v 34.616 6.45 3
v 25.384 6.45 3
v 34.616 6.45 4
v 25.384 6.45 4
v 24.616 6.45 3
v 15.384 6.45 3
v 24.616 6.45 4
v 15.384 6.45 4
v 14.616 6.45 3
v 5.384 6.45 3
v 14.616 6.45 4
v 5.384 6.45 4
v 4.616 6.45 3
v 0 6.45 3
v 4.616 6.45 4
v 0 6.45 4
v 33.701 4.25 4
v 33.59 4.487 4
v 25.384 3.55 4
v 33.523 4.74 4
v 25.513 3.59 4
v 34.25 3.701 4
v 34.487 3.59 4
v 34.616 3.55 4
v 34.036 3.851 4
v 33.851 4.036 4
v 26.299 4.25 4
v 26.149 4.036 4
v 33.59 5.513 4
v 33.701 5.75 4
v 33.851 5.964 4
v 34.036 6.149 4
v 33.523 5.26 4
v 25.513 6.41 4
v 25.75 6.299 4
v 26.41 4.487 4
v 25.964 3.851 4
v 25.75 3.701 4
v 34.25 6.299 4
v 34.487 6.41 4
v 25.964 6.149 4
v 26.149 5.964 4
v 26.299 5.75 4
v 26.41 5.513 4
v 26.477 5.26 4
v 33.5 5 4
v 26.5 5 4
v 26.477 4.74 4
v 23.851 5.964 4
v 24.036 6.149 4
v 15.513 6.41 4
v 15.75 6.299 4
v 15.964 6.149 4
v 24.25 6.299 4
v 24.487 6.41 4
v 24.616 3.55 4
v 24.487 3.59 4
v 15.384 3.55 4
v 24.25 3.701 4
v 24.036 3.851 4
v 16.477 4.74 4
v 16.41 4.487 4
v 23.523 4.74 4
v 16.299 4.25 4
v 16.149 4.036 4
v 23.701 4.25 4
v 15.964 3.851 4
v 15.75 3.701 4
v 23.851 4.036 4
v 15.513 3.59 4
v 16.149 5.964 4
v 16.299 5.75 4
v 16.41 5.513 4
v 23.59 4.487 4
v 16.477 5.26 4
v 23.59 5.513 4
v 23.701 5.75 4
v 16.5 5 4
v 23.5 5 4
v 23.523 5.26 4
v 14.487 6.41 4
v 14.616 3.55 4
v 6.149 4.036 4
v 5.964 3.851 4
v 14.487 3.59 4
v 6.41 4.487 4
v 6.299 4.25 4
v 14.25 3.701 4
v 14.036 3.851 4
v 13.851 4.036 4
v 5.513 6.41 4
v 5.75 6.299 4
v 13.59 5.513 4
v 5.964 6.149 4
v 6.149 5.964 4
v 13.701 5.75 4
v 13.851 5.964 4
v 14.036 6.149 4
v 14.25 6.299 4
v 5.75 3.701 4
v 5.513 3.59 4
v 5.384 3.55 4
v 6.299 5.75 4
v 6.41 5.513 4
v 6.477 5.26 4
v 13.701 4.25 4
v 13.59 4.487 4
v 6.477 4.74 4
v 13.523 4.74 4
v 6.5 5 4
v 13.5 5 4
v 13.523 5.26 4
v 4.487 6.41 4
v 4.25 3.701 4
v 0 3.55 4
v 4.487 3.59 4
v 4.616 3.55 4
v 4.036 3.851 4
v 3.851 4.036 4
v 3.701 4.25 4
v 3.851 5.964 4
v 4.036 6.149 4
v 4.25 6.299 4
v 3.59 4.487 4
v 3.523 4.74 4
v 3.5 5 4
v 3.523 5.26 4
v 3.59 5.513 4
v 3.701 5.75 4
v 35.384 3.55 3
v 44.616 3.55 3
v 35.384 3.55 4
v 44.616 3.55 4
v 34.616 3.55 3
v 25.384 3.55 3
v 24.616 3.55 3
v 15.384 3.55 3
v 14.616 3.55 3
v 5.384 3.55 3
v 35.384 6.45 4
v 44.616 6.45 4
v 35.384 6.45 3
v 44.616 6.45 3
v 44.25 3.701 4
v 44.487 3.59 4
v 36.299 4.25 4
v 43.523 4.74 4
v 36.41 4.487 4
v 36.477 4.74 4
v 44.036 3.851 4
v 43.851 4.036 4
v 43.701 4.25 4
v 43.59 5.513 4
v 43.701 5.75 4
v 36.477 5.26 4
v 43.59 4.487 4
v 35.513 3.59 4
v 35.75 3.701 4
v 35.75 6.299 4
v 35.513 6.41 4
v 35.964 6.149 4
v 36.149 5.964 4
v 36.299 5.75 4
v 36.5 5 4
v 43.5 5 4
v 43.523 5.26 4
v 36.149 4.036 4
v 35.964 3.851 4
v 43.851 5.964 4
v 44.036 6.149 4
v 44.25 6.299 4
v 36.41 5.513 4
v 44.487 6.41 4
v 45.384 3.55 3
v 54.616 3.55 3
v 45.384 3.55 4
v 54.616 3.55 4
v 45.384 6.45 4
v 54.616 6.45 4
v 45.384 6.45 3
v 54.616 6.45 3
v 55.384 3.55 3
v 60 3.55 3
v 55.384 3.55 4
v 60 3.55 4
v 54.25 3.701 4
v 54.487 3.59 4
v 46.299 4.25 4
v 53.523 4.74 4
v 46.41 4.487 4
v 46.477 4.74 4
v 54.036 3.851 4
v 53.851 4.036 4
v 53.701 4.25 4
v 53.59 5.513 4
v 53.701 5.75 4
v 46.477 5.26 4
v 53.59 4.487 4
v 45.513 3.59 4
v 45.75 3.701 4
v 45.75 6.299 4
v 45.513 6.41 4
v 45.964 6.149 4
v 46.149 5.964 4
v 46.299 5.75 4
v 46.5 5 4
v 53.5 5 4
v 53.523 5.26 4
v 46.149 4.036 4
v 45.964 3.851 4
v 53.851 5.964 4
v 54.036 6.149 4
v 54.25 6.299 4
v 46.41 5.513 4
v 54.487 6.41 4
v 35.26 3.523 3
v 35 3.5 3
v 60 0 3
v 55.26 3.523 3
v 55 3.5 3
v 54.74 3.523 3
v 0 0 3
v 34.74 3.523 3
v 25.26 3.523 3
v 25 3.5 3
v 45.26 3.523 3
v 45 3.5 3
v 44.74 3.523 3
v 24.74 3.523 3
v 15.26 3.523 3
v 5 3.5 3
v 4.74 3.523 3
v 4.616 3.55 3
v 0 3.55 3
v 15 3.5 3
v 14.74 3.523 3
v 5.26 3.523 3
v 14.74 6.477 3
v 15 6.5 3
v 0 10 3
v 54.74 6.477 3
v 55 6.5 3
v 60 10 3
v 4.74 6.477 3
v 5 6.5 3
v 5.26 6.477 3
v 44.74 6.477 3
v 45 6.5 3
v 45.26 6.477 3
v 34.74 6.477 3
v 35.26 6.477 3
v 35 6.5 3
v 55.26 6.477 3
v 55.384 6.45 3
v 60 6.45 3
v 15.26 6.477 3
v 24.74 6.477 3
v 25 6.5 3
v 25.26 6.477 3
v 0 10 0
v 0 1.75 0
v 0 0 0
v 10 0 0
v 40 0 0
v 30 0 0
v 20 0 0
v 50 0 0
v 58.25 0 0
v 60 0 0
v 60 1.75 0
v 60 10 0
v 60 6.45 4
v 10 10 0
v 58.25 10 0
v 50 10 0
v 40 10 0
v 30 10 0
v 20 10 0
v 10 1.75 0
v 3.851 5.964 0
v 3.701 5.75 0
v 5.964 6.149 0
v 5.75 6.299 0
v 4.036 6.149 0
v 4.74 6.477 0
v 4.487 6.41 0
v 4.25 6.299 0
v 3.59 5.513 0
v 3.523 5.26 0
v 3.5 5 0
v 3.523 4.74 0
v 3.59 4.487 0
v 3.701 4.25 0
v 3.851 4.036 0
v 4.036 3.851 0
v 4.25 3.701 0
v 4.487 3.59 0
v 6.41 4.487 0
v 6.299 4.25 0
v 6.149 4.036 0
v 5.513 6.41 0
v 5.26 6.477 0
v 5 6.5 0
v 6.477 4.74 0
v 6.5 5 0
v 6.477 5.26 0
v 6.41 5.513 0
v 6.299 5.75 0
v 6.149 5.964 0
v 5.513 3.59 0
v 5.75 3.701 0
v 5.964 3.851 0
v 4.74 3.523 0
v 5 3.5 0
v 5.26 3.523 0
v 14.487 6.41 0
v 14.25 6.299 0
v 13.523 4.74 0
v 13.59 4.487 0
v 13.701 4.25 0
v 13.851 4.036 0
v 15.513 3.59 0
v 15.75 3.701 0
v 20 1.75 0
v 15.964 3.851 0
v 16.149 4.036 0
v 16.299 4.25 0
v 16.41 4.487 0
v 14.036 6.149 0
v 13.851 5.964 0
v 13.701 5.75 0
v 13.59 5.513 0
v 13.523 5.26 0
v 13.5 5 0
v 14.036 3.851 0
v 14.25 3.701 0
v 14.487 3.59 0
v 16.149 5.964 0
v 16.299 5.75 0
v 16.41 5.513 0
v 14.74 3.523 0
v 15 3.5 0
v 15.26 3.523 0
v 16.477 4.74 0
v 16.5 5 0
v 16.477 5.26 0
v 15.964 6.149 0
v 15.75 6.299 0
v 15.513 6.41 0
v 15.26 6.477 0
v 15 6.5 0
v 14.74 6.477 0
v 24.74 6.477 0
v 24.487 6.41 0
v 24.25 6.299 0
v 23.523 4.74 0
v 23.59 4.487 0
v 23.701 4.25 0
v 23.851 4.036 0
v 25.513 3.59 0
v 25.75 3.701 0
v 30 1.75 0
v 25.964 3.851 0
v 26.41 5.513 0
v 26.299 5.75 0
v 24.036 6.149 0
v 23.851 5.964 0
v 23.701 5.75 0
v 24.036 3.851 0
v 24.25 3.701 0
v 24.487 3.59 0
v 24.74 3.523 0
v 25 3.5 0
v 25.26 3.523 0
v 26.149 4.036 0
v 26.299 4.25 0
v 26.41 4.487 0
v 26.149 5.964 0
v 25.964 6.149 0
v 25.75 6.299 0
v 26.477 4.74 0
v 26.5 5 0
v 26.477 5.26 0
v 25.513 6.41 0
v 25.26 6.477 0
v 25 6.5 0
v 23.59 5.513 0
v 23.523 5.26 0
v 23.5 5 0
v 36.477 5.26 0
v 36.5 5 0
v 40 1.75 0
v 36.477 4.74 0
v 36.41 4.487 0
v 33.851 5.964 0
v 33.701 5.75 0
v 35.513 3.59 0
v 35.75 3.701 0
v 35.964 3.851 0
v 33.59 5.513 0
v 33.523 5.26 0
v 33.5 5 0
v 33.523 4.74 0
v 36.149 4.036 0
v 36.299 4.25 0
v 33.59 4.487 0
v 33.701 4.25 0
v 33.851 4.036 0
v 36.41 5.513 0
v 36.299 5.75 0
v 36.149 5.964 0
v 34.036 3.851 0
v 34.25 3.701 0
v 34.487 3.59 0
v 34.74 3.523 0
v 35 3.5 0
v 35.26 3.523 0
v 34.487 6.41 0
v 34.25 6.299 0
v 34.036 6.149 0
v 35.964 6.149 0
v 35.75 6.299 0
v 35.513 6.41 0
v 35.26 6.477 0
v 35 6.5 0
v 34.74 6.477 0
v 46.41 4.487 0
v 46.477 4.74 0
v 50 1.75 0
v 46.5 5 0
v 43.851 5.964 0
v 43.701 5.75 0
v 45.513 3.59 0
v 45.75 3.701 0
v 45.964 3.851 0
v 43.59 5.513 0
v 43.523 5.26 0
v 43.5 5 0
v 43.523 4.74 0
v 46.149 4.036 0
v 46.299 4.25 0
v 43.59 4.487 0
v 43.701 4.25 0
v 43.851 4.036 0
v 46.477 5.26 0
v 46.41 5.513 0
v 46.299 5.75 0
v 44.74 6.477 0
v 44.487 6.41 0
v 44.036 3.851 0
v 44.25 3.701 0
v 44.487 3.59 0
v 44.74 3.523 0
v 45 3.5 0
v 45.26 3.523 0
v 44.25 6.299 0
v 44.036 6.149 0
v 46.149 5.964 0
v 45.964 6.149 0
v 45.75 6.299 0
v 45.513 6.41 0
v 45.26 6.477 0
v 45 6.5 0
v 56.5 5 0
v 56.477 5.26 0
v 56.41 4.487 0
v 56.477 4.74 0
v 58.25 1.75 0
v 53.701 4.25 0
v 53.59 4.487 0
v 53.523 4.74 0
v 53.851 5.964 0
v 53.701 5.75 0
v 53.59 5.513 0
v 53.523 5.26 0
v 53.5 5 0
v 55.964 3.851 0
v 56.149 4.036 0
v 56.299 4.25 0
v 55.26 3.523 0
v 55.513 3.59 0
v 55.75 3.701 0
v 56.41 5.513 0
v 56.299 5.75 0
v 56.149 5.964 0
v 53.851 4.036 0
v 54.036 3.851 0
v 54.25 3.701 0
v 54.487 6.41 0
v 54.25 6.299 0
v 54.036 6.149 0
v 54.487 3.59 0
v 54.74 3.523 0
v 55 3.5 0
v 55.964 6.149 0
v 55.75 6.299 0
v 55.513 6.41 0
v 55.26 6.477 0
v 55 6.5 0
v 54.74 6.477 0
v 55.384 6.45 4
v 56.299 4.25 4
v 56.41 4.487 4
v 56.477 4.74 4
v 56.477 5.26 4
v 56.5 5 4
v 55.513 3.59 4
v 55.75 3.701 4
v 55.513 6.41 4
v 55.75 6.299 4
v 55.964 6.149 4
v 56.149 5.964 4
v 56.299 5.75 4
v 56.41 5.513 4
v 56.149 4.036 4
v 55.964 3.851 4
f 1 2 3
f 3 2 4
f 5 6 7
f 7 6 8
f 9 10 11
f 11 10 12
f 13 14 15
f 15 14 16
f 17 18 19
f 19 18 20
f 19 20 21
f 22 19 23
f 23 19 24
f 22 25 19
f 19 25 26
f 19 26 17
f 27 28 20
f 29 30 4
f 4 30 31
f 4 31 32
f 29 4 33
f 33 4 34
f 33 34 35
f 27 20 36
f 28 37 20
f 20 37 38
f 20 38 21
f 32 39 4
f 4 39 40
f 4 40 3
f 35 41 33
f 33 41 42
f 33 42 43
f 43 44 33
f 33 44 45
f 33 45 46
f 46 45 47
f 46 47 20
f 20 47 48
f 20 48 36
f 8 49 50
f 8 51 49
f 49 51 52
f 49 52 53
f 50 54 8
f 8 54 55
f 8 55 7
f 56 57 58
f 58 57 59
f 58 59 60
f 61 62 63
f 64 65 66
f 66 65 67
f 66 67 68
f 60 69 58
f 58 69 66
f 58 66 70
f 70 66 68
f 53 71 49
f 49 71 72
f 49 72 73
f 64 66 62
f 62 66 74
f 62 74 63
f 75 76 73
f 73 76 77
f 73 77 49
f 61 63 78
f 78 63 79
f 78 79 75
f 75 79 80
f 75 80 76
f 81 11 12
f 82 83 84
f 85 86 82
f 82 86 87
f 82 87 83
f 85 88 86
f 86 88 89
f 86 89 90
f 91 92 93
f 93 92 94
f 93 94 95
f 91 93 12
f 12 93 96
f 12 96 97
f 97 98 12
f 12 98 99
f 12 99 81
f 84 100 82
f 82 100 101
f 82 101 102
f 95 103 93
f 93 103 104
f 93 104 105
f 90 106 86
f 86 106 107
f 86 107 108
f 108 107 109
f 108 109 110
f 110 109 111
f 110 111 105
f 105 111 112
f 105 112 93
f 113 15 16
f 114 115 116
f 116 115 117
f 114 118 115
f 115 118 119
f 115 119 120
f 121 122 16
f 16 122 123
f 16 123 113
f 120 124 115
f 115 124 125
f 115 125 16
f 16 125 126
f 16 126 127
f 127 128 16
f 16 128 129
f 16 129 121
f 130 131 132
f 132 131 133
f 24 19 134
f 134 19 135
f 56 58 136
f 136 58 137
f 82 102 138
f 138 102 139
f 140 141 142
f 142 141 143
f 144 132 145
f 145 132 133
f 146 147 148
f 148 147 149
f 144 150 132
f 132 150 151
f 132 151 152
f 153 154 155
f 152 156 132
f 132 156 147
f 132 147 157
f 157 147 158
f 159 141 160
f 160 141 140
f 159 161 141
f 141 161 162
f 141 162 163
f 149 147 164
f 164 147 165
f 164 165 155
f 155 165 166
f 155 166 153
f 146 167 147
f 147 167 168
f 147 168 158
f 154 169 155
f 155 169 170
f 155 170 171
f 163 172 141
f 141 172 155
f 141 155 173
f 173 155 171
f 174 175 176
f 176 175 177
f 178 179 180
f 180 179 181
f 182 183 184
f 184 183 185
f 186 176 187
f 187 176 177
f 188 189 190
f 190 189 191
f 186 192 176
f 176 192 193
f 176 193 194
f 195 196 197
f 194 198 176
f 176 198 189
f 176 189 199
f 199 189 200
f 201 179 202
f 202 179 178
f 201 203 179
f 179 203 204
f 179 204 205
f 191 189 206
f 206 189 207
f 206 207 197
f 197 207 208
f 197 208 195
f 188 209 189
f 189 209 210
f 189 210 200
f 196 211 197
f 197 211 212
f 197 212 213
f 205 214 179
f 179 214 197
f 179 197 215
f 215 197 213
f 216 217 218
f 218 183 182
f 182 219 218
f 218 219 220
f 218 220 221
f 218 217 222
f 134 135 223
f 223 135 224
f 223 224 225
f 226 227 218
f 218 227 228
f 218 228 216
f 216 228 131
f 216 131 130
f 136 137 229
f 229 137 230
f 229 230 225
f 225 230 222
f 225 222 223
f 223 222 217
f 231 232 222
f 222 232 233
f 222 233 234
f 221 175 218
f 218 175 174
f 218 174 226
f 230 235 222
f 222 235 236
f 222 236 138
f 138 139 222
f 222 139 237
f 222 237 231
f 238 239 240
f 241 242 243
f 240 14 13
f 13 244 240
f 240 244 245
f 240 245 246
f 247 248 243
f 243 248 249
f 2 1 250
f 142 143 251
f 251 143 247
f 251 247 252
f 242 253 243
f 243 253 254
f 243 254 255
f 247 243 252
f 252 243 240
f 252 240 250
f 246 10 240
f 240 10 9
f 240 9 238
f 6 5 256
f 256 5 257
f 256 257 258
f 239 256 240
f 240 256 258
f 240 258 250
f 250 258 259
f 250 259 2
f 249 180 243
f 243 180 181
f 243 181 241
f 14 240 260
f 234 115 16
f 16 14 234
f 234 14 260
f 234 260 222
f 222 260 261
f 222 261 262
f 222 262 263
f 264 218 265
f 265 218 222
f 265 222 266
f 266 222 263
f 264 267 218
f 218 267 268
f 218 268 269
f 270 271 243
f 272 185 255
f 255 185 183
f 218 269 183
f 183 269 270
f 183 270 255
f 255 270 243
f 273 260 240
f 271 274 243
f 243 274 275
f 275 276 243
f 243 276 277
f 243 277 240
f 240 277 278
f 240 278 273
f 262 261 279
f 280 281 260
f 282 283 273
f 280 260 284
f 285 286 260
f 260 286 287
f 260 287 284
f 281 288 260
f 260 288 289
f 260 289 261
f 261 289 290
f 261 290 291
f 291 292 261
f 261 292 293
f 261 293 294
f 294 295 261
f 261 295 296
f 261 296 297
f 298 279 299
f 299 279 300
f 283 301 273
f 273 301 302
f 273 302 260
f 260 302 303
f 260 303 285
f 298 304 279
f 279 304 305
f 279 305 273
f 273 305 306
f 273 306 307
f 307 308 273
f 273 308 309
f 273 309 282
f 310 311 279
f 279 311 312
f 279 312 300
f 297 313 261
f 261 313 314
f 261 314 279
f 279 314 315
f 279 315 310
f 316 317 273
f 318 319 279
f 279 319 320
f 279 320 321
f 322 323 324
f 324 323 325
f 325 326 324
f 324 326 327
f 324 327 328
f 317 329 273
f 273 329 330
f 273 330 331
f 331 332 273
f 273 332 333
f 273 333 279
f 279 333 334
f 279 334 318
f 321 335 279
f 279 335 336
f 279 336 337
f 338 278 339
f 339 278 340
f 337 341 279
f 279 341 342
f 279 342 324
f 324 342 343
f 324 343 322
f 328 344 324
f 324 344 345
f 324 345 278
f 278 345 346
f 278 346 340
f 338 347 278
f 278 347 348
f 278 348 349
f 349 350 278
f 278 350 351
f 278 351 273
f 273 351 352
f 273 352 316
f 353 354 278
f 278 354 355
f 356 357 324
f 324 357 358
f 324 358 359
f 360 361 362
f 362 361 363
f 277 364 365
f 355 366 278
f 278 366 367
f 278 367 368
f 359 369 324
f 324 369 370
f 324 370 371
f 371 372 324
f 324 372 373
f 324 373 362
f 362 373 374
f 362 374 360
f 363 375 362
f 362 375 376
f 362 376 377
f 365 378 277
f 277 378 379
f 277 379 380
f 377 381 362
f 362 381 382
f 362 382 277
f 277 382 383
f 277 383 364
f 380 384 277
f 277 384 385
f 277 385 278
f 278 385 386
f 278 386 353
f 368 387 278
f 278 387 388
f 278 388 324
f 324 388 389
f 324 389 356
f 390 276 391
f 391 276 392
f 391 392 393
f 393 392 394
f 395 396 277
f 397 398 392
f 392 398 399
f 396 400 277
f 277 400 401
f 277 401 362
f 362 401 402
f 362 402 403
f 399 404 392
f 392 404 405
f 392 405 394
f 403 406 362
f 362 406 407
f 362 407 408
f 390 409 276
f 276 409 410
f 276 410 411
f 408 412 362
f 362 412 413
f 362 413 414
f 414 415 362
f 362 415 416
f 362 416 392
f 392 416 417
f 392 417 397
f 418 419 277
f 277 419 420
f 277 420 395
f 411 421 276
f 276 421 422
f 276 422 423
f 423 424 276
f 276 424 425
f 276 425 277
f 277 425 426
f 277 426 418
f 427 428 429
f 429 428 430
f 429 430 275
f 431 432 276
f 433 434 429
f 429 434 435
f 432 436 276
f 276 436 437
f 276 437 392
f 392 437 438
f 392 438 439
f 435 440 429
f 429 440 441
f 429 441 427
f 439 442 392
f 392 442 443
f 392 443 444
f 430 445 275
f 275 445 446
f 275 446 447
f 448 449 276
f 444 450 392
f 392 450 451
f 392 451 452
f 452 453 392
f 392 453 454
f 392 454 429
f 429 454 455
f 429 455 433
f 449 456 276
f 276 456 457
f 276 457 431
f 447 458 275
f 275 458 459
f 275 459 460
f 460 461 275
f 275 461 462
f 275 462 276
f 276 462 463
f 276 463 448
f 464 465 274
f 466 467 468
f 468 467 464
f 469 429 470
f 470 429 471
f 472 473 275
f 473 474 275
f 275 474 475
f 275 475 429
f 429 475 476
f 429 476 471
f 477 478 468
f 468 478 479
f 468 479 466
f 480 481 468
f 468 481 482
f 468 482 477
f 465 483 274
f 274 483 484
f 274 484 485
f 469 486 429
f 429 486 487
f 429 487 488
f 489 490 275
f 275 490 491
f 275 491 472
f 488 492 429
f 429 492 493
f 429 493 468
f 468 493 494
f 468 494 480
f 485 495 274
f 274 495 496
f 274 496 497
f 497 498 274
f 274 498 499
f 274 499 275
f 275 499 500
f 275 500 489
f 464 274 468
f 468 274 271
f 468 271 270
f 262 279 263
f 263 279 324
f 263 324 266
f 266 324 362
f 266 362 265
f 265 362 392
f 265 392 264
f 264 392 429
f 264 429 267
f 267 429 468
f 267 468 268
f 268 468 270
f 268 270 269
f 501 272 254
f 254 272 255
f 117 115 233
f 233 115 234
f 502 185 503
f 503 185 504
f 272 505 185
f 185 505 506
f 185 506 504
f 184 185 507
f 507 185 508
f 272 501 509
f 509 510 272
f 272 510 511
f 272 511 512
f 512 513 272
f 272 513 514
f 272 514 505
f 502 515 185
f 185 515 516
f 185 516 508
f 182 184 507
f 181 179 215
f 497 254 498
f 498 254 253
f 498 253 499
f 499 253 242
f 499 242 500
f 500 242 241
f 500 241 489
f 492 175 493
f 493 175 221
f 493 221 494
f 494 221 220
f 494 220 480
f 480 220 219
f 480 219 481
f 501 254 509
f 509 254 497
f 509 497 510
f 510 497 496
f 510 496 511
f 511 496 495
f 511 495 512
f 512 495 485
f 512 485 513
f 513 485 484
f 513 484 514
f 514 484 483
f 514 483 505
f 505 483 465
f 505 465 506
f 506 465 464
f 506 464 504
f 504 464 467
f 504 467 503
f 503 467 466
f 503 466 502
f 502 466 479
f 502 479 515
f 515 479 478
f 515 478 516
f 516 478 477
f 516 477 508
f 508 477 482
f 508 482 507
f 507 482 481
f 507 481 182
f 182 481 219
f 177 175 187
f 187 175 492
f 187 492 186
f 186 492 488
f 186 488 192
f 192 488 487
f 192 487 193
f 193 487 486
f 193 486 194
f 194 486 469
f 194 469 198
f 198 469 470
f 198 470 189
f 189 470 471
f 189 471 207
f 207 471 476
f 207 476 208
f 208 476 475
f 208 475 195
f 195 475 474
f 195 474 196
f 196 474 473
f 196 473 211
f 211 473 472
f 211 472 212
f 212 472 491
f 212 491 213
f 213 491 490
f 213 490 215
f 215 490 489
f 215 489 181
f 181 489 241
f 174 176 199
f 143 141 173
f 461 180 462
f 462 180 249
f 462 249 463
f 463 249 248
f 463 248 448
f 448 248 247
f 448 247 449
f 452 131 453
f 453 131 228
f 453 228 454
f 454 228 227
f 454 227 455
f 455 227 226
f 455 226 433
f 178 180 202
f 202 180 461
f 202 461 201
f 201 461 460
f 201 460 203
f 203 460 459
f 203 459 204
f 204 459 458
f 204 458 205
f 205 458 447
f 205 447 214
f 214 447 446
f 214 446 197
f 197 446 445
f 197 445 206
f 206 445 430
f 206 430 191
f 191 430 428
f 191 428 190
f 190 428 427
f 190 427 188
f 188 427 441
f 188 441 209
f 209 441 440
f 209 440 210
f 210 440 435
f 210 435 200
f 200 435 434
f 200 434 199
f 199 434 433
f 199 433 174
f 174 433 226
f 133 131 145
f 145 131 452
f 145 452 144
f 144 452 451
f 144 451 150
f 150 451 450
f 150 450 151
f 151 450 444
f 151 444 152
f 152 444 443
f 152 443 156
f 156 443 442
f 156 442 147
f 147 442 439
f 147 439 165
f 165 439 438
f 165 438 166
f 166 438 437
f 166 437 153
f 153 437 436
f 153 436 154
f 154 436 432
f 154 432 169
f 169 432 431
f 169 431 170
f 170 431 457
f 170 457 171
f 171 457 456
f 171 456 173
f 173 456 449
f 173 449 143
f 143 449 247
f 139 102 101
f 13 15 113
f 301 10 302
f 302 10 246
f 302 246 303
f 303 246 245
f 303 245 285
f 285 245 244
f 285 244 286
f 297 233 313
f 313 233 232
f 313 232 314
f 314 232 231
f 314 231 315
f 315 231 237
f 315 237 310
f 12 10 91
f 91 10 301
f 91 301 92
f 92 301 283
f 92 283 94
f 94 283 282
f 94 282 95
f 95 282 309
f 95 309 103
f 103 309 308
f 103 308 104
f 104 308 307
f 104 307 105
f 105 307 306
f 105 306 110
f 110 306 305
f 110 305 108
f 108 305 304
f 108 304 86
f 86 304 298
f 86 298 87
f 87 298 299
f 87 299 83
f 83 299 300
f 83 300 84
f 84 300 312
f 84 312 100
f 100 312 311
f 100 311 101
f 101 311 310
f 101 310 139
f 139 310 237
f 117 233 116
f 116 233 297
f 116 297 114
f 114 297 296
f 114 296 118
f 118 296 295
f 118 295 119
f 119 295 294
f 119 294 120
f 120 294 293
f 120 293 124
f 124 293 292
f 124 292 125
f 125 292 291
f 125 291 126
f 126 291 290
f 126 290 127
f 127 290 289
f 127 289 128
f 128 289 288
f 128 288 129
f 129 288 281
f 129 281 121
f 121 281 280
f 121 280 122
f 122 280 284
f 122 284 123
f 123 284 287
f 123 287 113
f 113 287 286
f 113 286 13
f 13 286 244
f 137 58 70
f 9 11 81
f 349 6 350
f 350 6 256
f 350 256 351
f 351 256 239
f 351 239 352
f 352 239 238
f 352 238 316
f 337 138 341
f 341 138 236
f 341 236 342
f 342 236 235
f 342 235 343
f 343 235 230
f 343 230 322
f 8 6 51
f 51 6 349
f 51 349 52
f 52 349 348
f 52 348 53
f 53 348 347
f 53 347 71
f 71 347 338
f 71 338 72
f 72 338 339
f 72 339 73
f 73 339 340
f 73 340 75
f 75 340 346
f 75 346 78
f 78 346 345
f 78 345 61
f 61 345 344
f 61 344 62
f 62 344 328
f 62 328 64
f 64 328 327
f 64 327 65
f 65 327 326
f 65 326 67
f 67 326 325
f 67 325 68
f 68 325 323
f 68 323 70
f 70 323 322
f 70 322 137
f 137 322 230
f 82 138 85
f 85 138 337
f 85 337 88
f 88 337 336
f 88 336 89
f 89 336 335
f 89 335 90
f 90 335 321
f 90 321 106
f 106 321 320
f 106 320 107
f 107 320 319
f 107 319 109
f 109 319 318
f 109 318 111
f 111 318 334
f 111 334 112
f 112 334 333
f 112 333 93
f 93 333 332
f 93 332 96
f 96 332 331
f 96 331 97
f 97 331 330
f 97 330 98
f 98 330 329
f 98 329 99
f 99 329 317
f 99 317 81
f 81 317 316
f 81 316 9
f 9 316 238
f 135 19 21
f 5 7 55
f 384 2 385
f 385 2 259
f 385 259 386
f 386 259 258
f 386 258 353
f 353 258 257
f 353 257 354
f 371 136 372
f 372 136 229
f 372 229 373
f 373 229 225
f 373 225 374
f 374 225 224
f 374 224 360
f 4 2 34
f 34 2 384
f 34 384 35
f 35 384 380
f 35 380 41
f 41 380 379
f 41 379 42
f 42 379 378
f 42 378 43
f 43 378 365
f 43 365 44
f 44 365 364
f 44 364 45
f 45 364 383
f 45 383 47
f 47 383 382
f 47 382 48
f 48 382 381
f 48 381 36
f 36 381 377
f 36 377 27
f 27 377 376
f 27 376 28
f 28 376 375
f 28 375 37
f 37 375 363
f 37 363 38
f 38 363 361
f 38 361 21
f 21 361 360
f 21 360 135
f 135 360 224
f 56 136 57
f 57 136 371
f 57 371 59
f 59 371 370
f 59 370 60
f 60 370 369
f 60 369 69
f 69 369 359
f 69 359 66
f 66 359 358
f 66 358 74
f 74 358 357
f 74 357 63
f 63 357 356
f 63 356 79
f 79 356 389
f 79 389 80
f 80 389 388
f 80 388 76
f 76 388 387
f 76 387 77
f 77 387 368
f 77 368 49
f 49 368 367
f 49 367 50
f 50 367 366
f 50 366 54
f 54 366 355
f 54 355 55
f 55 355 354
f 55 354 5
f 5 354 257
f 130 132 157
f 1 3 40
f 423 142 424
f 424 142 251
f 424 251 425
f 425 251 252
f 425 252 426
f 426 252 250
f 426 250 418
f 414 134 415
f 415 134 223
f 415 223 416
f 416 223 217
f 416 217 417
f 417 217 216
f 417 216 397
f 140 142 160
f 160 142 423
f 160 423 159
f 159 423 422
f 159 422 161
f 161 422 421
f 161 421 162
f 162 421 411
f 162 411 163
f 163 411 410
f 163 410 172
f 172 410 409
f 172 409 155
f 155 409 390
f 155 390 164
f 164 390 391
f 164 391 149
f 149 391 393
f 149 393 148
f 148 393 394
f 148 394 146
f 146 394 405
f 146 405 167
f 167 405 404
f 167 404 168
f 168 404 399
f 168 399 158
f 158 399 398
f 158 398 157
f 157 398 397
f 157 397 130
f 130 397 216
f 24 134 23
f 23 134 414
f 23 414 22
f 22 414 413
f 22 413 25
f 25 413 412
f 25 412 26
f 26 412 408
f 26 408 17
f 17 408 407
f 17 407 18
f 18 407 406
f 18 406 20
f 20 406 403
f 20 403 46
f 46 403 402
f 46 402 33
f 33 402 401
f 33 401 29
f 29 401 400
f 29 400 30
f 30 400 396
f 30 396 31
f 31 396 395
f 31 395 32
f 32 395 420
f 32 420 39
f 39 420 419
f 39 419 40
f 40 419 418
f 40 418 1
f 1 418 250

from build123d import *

# Parameters (mm, degrees)
ESQUISSE1_W                = 60
ESQUISSE1_H                = 10
BOSS_EXTRU_1_DEPTH         = 3
ESQUISSE2_W                = 60
ESQUISSE2_H                = 2.9
BOSS_EXTRU_2_DEPTH         = 1
ESQUISSE3_R                = 1.5
ENL_V_MAT_EXTRU_1_DEPTH    = 5
R_P_TITION_LIN_AIRE1_COUNT = 6
R_P_TITION_LIN_AIRE1_PITCH = 10


with BuildPart() as part:
    # Esquisse1 → Boss.-Extru.1 (new body)
    with BuildSketch(Plane.XY):
        with Locations((30, 5)):
            Rectangle(ESQUISSE1_W, ESQUISSE1_H)
    extrude(amount=BOSS_EXTRU_1_DEPTH)

    # Esquisse2 → Boss.-Extru.2 (add)
    with BuildSketch(Plane.XY.offset(3)):
        with Locations((30, 5)):
            Rectangle(ESQUISSE2_W, ESQUISSE2_H)
    extrude(amount=BOSS_EXTRU_2_DEPTH)

    # Esquisse3 → Enlèv. mat.-Extru.1 (cut, through all)
    with BuildSketch(Plane(origin=(0, 0, 0), x_dir=(-1, 0, 0), z_dir=(0, 0, -1))):
        with Locations((-55, 5)):
            Circle(ESQUISSE3_R)
    enl_v_mat_extru_1 = extrude(amount=-ENL_V_MAT_EXTRU_1_DEPTH, mode=Mode.SUBTRACT)

    # Répétition linéaire1: Enlèv. mat.-Extru.1 ×6
    with Locations(*[(-i * R_P_TITION_LIN_AIRE1_PITCH, 0, 0) for i in range(1, R_P_TITION_LIN_AIRE1_COUNT)]):
        add(enl_v_mat_extru_1, mode=Mode.SUBTRACT)


solid = part.part
